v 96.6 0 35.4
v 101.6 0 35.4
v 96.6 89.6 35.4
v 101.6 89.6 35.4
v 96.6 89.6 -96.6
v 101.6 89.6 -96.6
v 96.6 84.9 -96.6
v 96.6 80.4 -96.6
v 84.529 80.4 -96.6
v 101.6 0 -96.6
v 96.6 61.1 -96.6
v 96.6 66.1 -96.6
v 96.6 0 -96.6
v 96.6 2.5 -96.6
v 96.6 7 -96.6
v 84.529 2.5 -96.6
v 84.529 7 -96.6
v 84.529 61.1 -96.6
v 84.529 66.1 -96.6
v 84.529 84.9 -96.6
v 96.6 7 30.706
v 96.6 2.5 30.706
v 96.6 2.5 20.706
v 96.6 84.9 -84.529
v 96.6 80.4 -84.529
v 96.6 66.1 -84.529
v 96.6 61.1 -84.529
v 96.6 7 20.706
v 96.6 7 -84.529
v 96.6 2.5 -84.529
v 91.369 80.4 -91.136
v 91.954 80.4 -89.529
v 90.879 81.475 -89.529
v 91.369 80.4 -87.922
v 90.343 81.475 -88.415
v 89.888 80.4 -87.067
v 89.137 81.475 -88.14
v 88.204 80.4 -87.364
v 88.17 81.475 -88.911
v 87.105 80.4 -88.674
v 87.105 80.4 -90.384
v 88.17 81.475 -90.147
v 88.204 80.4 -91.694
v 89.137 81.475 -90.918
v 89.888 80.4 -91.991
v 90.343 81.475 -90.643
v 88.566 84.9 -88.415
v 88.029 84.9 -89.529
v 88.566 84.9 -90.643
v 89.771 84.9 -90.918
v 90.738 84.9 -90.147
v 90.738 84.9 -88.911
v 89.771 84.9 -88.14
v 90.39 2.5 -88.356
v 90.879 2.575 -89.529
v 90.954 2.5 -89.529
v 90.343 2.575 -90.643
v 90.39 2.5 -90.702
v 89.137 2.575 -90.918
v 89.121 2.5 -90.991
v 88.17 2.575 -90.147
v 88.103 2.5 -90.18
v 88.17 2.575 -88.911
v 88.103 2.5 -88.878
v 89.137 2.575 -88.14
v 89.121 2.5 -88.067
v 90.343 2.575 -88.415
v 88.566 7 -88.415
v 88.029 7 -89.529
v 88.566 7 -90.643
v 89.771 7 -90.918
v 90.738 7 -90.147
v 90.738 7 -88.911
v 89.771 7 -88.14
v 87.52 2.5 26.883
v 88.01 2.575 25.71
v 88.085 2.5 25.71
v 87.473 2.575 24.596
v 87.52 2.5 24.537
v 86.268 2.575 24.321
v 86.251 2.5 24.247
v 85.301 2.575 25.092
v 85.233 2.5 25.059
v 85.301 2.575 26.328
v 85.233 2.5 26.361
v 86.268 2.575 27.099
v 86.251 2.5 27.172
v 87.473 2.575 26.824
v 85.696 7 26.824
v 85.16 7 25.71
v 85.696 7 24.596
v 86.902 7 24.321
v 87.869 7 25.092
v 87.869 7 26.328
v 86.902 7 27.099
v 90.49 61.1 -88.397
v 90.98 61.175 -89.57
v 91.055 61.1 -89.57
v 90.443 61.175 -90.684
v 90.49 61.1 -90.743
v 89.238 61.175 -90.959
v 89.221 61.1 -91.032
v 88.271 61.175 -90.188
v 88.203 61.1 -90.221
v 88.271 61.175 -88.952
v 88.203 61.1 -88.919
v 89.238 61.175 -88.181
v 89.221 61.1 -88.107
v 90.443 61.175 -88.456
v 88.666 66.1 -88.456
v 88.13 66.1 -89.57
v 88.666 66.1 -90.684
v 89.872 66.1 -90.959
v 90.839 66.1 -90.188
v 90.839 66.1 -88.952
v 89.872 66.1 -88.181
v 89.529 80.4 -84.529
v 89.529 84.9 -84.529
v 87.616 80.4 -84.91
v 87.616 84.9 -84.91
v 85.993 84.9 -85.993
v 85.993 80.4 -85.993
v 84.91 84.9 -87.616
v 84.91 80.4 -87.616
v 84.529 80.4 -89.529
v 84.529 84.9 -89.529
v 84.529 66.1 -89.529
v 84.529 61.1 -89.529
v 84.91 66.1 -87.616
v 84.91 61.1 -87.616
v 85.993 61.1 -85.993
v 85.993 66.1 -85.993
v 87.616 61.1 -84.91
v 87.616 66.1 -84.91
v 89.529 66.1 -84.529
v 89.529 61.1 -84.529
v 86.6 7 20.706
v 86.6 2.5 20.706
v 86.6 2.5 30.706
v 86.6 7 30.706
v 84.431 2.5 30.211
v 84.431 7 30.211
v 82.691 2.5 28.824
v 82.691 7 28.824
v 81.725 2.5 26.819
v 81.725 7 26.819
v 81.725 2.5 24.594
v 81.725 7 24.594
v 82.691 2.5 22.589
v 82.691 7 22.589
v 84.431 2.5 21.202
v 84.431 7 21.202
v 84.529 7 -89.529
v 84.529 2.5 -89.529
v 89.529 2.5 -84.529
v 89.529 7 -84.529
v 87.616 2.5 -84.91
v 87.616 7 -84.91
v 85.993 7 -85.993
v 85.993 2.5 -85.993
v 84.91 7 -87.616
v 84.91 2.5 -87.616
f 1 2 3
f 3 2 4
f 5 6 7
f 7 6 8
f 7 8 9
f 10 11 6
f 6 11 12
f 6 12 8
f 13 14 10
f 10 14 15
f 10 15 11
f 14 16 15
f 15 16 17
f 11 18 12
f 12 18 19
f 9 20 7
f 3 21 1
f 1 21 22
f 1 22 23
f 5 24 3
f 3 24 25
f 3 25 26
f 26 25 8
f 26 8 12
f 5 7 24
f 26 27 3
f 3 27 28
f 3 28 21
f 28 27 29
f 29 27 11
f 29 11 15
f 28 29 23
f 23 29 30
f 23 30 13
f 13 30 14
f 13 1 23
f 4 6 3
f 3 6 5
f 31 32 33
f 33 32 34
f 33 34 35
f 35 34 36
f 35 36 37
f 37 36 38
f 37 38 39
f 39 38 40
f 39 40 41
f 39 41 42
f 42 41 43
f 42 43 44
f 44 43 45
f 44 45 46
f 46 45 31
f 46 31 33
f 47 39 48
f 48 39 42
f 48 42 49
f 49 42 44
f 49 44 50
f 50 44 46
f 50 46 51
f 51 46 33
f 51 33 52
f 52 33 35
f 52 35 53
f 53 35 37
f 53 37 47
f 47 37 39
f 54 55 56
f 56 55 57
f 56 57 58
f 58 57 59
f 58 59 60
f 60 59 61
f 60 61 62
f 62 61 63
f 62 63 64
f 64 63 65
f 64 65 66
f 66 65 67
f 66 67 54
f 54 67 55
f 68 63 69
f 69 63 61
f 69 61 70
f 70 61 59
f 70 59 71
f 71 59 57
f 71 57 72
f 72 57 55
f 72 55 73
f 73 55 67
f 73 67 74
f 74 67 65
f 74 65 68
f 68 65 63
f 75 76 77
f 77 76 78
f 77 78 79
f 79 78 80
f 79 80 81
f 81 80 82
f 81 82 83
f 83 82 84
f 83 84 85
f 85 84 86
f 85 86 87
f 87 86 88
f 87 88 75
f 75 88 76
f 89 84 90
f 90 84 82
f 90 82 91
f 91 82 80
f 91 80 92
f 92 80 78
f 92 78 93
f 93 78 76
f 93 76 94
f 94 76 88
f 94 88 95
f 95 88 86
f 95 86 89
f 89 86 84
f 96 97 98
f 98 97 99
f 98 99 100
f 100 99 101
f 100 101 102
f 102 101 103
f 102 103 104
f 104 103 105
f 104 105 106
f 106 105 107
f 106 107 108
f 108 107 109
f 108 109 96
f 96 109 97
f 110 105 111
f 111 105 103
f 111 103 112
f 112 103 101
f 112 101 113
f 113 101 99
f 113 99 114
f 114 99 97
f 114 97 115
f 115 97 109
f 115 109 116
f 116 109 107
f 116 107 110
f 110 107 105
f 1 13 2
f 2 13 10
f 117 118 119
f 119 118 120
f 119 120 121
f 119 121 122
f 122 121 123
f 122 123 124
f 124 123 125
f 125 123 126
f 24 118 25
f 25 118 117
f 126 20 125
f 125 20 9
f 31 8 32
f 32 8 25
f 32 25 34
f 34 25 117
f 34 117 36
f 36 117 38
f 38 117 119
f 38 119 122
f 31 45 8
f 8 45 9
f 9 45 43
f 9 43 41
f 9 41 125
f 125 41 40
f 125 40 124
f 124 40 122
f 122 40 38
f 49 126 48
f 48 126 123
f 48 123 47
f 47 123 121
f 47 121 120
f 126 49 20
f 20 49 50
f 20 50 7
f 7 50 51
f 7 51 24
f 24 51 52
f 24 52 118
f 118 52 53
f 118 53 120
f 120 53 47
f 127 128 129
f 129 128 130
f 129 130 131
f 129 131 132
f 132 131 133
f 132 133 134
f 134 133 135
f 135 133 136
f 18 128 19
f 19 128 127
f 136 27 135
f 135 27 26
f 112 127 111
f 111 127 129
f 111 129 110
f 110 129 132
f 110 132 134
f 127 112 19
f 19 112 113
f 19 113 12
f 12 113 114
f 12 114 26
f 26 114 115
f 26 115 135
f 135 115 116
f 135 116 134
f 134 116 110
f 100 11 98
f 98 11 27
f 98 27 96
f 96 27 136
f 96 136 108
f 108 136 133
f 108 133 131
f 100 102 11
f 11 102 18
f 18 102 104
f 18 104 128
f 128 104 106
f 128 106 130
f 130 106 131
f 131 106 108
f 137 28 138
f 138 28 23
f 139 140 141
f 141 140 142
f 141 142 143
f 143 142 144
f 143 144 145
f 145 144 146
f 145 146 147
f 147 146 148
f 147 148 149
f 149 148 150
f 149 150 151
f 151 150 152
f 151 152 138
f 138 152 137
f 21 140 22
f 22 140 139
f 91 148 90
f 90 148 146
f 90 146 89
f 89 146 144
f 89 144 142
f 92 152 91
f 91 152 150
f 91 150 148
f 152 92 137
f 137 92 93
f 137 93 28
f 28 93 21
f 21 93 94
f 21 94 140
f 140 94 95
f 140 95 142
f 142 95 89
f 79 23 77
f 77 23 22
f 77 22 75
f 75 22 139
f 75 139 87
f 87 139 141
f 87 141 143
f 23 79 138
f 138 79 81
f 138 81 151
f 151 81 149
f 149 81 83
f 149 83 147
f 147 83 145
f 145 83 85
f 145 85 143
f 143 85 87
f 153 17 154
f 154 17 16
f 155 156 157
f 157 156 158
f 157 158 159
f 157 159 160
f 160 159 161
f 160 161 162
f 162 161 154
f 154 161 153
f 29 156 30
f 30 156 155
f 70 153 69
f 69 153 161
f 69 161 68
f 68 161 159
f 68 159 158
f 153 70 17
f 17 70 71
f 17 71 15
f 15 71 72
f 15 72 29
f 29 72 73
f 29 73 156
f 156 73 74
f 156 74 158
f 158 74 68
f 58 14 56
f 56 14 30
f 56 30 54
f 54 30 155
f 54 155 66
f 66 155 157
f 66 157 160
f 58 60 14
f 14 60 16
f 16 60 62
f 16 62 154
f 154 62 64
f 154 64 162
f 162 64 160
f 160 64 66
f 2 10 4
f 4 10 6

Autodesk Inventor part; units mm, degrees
ref_plane "YZ Plane" through (0, 0, 0) normal (1, 0, 0) x (0, 1, 0)
sketch "Sketch1" plane through (0, 0, 0) normal (0, 1, 0) x (-1, 0, 0)
  line L0 (101.6, -101.6) -> (-101.6, -101.6)
  line L1 (-101.6, -101.6) -> (-101.6, 101.6)
  line L2 (-101.6, 101.6) -> (101.6, 101.6)
  line L3 (101.6, 101.6) -> (101.6, -101.6)
  line L4 (96.6, -96.6) -> (-96.6, -96.6)
  line L5 (-96.6, -96.6) -> (-96.6, 96.6)
  line L6 (-96.6, 96.6) -> (96.6, 96.6)
  line L7 (96.6, 96.6) -> (96.6, -96.6)
  line L8 (101.6, 101.6) -> (-40.4, 101.6)
  circle A0 centre (0, 0) radius 88.9
  circle A1 centre (0, 0) radius 109.3376
  line L9 (-40.4, 101.6) -> (-101.6, 40.4)
  line L10 (-45.4, 101.6) -> (-101.6, 45.4)
  line L11 (96.6, 96.6) -> (96.6, 101.6)
  line L12 (-45.4, 101.6) -> (-35.4, 101.6)
  line L13 (-35.4, 101.6) -> (-35.4, 96.6)
  line L14 (-35.4, 96.6) -> (-45.4, 96.6)
  line L15 (-45.4, 96.6) -> (-45.4, 101.6)
  point P0 (96.6, 51.2168)
  point P1 (101.6, 40.4)
  point P2 (101.6, -40.4)
  point P3 (96.6, -51.2168)
  point P4 (-96.6, 45.4)
  point P5 (-45.4, 96.6)
  dimension "d0" = 203.2
  dimension "d1" = 203.2
  dimension "d2" = 101.6
  dimension "d3" = 101.6
  dimension "d4" = 5
  dimension "d5" = 5
  dimension "d6" = 5
  dimension "d7" = 5
  dimension "d10" = 142
  dimension "d12" = 61.2
  dimension "d14" = 177.8
  dimension "d15" = 5
  dimension "d16" = 5
  dimension "d17" = 10
extrude "Extrusion1" add sketch "Sketch1" along normal blind 89.6 contours L0 A1 L4 L7 L3 | L0 A1 L4 | A1 L7 L3 | L0 L1 A1 L5 L4 | A1 L7 L11 L2 L3 | L1 L9 L5 A1 | L1 L10 A1 | A1 L10 L5 L9 | L5 L10 L6 L9 | L6 L9 L2 L13 | L15 A1 L9 | L6 L10 A1 L15 | A1 L15 L2 | A1 L10 L15
sketch "Sketch2" plane through (101.6, 0, 45.4) normal (0.7071068, 0, 0.7071068) x (0.7071068, 0, -0.7071068)
  line L0 (-179.888, 0) -> (-39.7394, 0) projected
  line L1 (-74.4788, 0) -> (-5, 0)
  line L2 (-5, 0) -> (-5, 38.1)
  line L3 (-5, 38.1) -> (-74.4788, 38.1)
  line L4 (-74.4788, 38.1) -> (-74.4788, 0)
  line L5 (0, 0) -> (0, 89.6) projected
  line L6 (-79.4788, 0) -> (-79.4788, 89.6) projected
  arc A0 (-5, 38.1) -> (-74.4788, 38.1) centre (-39.7394, 10.3696) ccw
  point P0 (-39.7394, 0)
  dimension "d20" = 5
  dimension "d21" = 5
  dimension "d22" = 38.1
  dimension "d33" = 44.45
extrude "Extrusion2" cut sketch "Sketch2" along normal mid plane 98.6
fillet "Fillet1" radius 3.175 2 edges at (101.6, 44.8, 45.4) (45.4, 44.8, 101.6)
sketch "Sketch4" plane through (101.6, 0, -101.6) normal (1, 0, 0) x (0, 0, -1)
  line L0 (-145.6849, 0) -> (-145.6849, 89.6) projected
  line L1 (-203.2, 0) -> (-203.2, 89.6) projected
  line L2 (-145.6849, 0) -> (-203.2, 0)
  line L3 (-203.2, 0) -> (-203.2, 2)
  line L4 (-203.2, 2) -> (-145.6849, 2)
  line L5 (-145.6849, 2) -> (-145.6849, 0)
  point P0 (-101.6, 0)
  point P1 (-203.2, 0)
  dimension "d28" = 2
extrude "Extrusion3" cut sketch "Sketch4" against normal blind 57.658
fillet "Fillet3" radius 3.175 1 edges at (73.5, 54.8196, 73.5)
fillet "Fillet4" radius 3.175 2 edges at (48.9355, 20.05, 98.0645) (98.0645, 20.05, 48.9355)
sketch "Sketch5" plane through (-96.6, 0, -96.6) normal (0, 0, 1) x (1, 0, 0)
  line L0 (0, 0) -> (0, 89.6) projected
  line L1 (0, 0) -> (12.7, 0)
  line L2 (12.7, 0) -> (12.7, 19.7)
  line L3 (12.7, 19.7) -> (0, 19.7)
  line L4 (0, 19.7) -> (0, 0)
  line L5 (12.7, 0) -> (0, 0)
  line L6 (0, 0) -> (0, 7)
  line L7 (0, 7) -> (12.7, 7)
  line L8 (12.7, 7) -> (12.7, 0)
  point P0 (96.6, 0)
  point P1 (0, 7)
  point P2 (12.7, 7)
  point P3 (0, 19.7)
  dimension "d34" = 12.7
  dimension "d35" = 7
  dimension "d36" = 12.7
extrude "Extrusion4" cut sketch "Sketch5" against normal blind 25.4 contours L0 L3 L2 L7
ref_plane "Work Plane3" through (-96.6, 7, -99.1) normal (0, 1, 0) x (1, 0, 0)
sketch "Sketch11" plane through (-96.6, 7, -99.1) normal (0, 1, 0) x (1, 0, 0)
  line L0 (0, -2.5) -> (0, -196.0064)
  line L1 (193.2, -2.5) -> (0, -2.5)
  line L2 (0, -2.5) -> (193.2, -2.5)
  line L3 (193.2, -144.8203) -> (141.8746, -196.0064)
  line L4 (193.2, -2.5) -> (193.2, -144.8203)
  line L5 (193.2, -144.8203) -> (141.8746, -196.0064)
  line L6 (141.8746, -196.0064) -> (0, -196.0064)
  line L7 (0, -196.0064) -> (0, -2.5)
  line L8 (0, -2.5) -> (7.0711, -9.5711)
  circle A0 centre (7.0711, -9.5711) radius 5.3203
  circle A1 centre (7.0711, -9.5711) radius 1
  line L9 (7.0711, -14.8914) -> (0, -14.8914)
  line L10 (7.0711, -9.5711) -> (7.0711, -14.8914)
  line L11 (7.0711, -9.5711) -> (12.3914, -9.5711)
  line L12 (12.3914, -2.5) -> (12.3914, -9.5711)
  line L13 (0, -196.0064) -> (7.0711, -188.9353)
  line L14 (0, -196.0064) -> (10, -196.0064) construction
  circle A2 centre (7.0711, -188.9353) radius 5
  circle A3 centre (7.0711, -188.9353) radius 1
  line L15 (7.0711, -188.9353) -> (12.0711, -188.9353)
  line L16 (12.0711, -196.0064) -> (12.0711, -188.9353)
  line L17 (7.0711, -188.9353) -> (7.0711, -183.9353)
  line L18 (0, -183.9353) -> (7.0711, -183.9353)
  line L19 (193.2, -2.5) -> (186.1289, -9.5711)
  circle A4 centre (186.1289, -9.5711) radius 5
  circle A5 centre (186.1289, -9.5711) radius 1
  line L20 (186.1289, -9.5711) -> (181.1289, -9.5711)
  line L21 (181.1289, -2.5) -> (181.1289, -9.5711)
  line L22 (186.1289, -9.5711) -> (186.1289, -14.5711)
  line L23 (193.2, -14.5711) -> (186.1289, -14.5711)
  line L24 (193.2, -142.5343) -> (193.2, -2.5)
  line L25 (0, -196.0064) -> (139.7178, -196.0064)
  line L26 (122, -124.8064) -> (198.2, -124.8064)
  line L27 (198.2, -188.3064) -> (198.2, 2.1936)
  line L28 (122, -124.8064) -> (122, -201.0064)
  line L29 (139.7178, -201.0064) -> (-5, -201.0064)
  line L30 (193.2, -124.8064) -> (183.2, -124.8064)
  circle A6 centre (183.2, -124.8064) radius 5
  circle A7 centre (183.2, -124.8064) radius 1
  line L31 (122, -196.0064) -> (122, -186.0064)
  line L32 (193.2, -2.5) -> (193.2, -144.5) projected
  line L33 (0, -2.5) -> (193.2, -2.5) projected
  line L34 (0, -200.7) -> (0, -2.5) projected
  line L35 (183.2, -119.8064) -> (193.2, -119.8064)
  line L36 (183.2, -124.8064) -> (183.2, -129.8064)
  line L37 (183.2, -129.8064) -> (193.2, -129.8064)
  point P0 (96.6, -99.1)
  point P1 (96.4746, -327.7)
  point P2 (-5, -201.0064)
  point P3 (0, -183.9353)
  point P4 (0, -196.0064)
  point P5 (12.3914, -2.5)
  point P6 (0, -14.8914)
  dimension "d96" = 10
  dimension "d97" = 2
  dimension "d98" = 10
  dimension "d99" = 45
  dimension "d100" = 10
  dimension "d101" = 2
  dimension "d102" = 10
  dimension "d103" = 10
  dimension "d104" = 2
  dimension "d105" = 76.2
  dimension "d106" = 76.2
  dimension "d109" = 2
  dimension "d113" = 228.6
  dimension "d114" = 0
  dimension "d115" = 0
  dimension "d116" = 0
  dimension "d117" = 0
extrude "Extrusion8" add sketch "Sketch11" against normal blind 4.5 contours L8 A0 L9 L0 | L1 L12 A0 L8 | A0 L11 A1 L8 | L8 A1 L10 A0 | L18 A2 L13 L0 | L10 A1 L11 A0 | L1 L19 A4 L21 | L13 A2 L16 L6 | L17 A3 L13 A2 | A2 L15 A3 L17 | L4 L23 A4 L19 | L20 A5 L22 A4 | A4 L19 A5 L20 | L13 A3 L15 A2 | A4 L22 A5 L19 | L4 L26 A6 L35 | L4 L37 A6 L26 | A6 L26 A7 | A6 L36 A7 L26 | L26 A7 L36 A6
sketch "Sketch12" plane through (-101.6, 0, 101.6) normal (0, 0, 1) x (1, 0, 0)
  line L0 (0, 0) -> (5, 0) projected
  line L1 (5, 19.7) -> (5, 89.6) projected
  line L2 (0, 0) -> (5, 0)
  line L3 (5, 0) -> (5, 61.1)
  line L4 (5, 61.1) -> (0, 61.1)
  line L5 (0, 61.1) -> (0, 0)
  point P0 (101.6, 0)
  dimension "d120" = 61.1
ref_plane "Work Plane4" through (-96.6, 61.1, 101.6) normal (0, 1, 0) x (-1, 0, 0)
sketch "Sketch13" plane through (-96.6, 61.1, 101.6) normal (0, 1, 0) x (-1, 0, 0)
  line L0 (0, -198.2) -> (0, -5)
  line L1 (-193.2, -198.2) -> (0, -198.2)
  line L2 (0, -198.2) -> (-193.2, -198.2)
  line L3 (-193.2, -56.1861) -> (-141.8746, -5)
  line L4 (-193.2, -198.2) -> (-193.2, -56.1861)
  line L5 (-193.2, -56.1861) -> (-141.8746, -5)
  line L6 (-141.8746, -5) -> (0, -5)
  line L7 (0, -5) -> (0, -198.2)
  line L8 (0, -198.2) -> (-7.0711, -191.1289)
  circle A0 centre (-7.0711, -191.1289) radius 5.3203
  circle A1 centre (-7.0711, -191.1289) radius 1
  line L9 (-7.0711, -185.8086) -> (0, -185.8086)
  line L10 (-7.0711, -191.1289) -> (-7.0711, -185.8086)
  line L11 (-7.0711, -191.1289) -> (-12.3914, -191.1289)
  line L12 (-12.3914, -198.2) -> (-12.3914, -191.1289)
  line L13 (0, -5) -> (-7.2124, -11.9268)
  line L14 (0, -5) -> (-9.998, -4.7981) construction
  circle A2 centre (-7.2124, -11.9268) radius 5
  circle A3 centre (-7.2124, -11.9268) radius 1
  line L15 (-7.2124, -11.9268) -> (-12.2124, -11.9073)
  line L16 (-12.1854, -5) -> (-12.2124, -11.9073)
  line L17 (-7.2124, -11.9268) -> (-7.2319, -16.9268)
  line L18 (0, -16.955) -> (-7.2319, -16.9268)
  line L19 (-193.2, -198.2) -> (-186.1289, -191.1289)
  circle A4 centre (-186.1289, -191.1289) radius 5
  circle A5 centre (-186.1289, -191.1289) radius 1
  line L20 (-186.1289, -191.1289) -> (-181.1289, -191.1289)
  line L21 (-181.1289, -198.2) -> (-181.1289, -191.1289)
  line L22 (-186.1289, -191.1289) -> (-186.1289, -186.1289)
  line L23 (-193.2, -186.1289) -> (-186.1289, -186.1289)
  line L24 (-193.2, -58.1657) -> (-193.2, -198.2)
  line L25 (0, -5) -> (-139.7178, -5)
  line L26 (-122, -76.2) -> (-198.2, -76.2)
  line L27 (-198.2, -12.5257) -> (-198.2, -203.0257)
  line L28 (-122, -76.2) -> (-122, 0)
  line L29 (-139.8151, 0) -> (4.9027, 0)
  line L30 (-193.2, -76.2) -> (-183.2973, -76.2)
  circle A6 centre (-183.2973, -76.2) radius 5
  circle A7 centre (-183.2973, -76.2) radius 1
  line L31 (-122, -5) -> (-122, -15)
  circle A8 centre (-122, -15) radius 5
  circle A9 centre (-122, -15) radius 1.75
  line L32 (-193.2, -198.2) -> (-193.2, -56.2)
  line L33 (0, -198.2) -> (-193.2, -198.2)
  line L34 (0, -0.1321) -> (0, -198.2)
  line L35 (-183.2973, -81.2) -> (-193.2, -81.2)
  line L36 (-183.2973, -76.2) -> (-183.2973, -71.2)
  line L37 (-183.2973, -71.2) -> (-193.2, -71.2)
  line L38 (-122, -15) -> (-127, -15)
  line L39 (-127, -15) -> (-127, -5)
  line L40 (-117, -15) -> (-117, -5)
  line L41 (0, 0) -> (0, -198.2) projected
  line L42 (0, -198.2) -> (-193.2, -198.2) projected
  line L43 (-198.2, -57.5151) -> (-198.2, -203.2) projected
  line L44 (0, -4.6936) -> (-12.0711, -4.6936) projected
  line L45 (5, 0) -> (0, 0) projected
  line L46 (-142, -5) -> (-132, -5) projected
  point P0 (-96.6, -101.6)
  point P1 (-96.6973, -101.7321)
  point P2 (-139.7178, -5)
  point P3 (-139.8151, 0)
  point P4 (4.9027, 0)
  point P5 (181.1289, -2.5)
  point P6 (193.2, -129.8064)
  point P7 (193.2, -119.8064)
  point P8 (117, -196.0064)
  point P9 (127, -196.0064)
  point P10 (0, -183.9353)
  point P11 (0, -196.0064)
  point P12 (12.3914, -2.5)
  point P13 (0, -14.8914)
  point P14 (-193.2, -71.2)
  point P15 (-193.2, -81.2)
  point P16 (0, -16.955)
  point P17 (0, -5)
  point P18 (-12.3914, -198.2)
  point P19 (0, -185.8086)
  dimension "d122" = 10
  dimension "d123" = 2
  dimension "d124" = 10
  dimension "d125" = 45
  dimension "d126" = 10
  dimension "d127" = 2
  dimension "d128" = 10
  dimension "d129" = 10
  dimension "d130" = 2
  dimension "d131" = 76.2
  dimension "d132" = 76.2
  dimension "d133" = 2
  dimension "d134" = 10
  dimension "d135" = 10
  dimension "d136" = 3.5
  dimension "d138" = 0
  dimension "d139" = 0
  dimension "d140" = 0
  dimension "d141" = 0
  dimension "d142" = 0
  dimension "d143" = 0
  dimension "d144" = 0
  dimension "d146" = 0
  dimension "d148" = 0
extrude "Extrusion9" add sketch "Sketch13" along normal blind 5 contours L8 A0 L9 L0 | L1 L12 A0 L8 | A0 L11 A1 L8 | L8 A1 L10 A0 | L18 A2 L13 L0 | L10 A1 L11 A0 | L1 L19 A4 L21 | L13 A2 L16 L6 | L17 A3 L13 A2 | A2 L15 A3 L17 | L4 L23 A4 L19 | L20 A5 L22 A4 | A4 L19 A5 L20 | L13 A3 L15 A2 | A4 L22 A5 L19
sketch "Sketch14" plane through (-101.6, 0, 101.6) normal (0, 0, 1) x (1, 0, 0)
  line L0 (12.2319, 61.1) -> (5, 61.1) projected
  line L1 (5, 62) -> (5, 84.9)
  line L2 (5, 0) -> (5, 89.6) projected
  line L3 (5, 84.9) -> (137, 84.9)
  line L4 (137, 0) -> (137, 89.6) projected
  point P0 (101.6, 0)
  point P1 (5, 61.1)
  dimension "d151" = 22.9
ref_plane "Work Plane5" through (-96.6, 84.9, 101.6) normal (0, -1, 0) x (1, 0, 0)
sketch "Sketch15" plane through (-96.6, 84.9, 101.6) normal (0, -1, 0) x (1, 0, 0)
  line L0 (0, -198.2) -> (0, -5)
  line L1 (-193.2, -198.2) -> (0, -198.2)
  line L2 (0, -198.2) -> (-193.2, -198.2)
  line L3 (-193.2, -56.1861) -> (-141.8746, -5)
  line L4 (-193.2, -198.2) -> (-193.2, -56.1861)
  line L5 (-193.2, -56.1861) -> (-141.8746, -5)
  line L6 (-141.8746, -5) -> (0, -5)
  line L7 (0, -5) -> (0, -198.2)
  line L8 (0, -198.2) -> (-7.0711, -191.1289)
  circle A0 centre (-7.0711, -191.1289) radius 5.3203
  circle A1 centre (-7.0711, -191.1289) radius 1
  line L9 (-7.0711, -185.8086) -> (0, -185.8086)
  line L10 (-7.0711, -191.1289) -> (-7.0711, -185.8086)
  line L11 (-7.0711, -191.1289) -> (-12.3914, -191.1289)
  line L12 (-12.3914, -198.2) -> (-12.3914, -191.1289)
  line L13 (0, -5) -> (-7.2124, -11.9268)
  line L14 (0, -5) -> (-9.998, -4.7981) construction
  circle A2 centre (-7.2124, -11.9268) radius 5
  circle A3 centre (-7.2124, -11.9268) radius 1
  line L15 (-7.2124, -11.9268) -> (-12.2124, -11.9073)
  line L16 (-12.1854, -5) -> (-12.2124, -11.9073)
  line L17 (-7.2124, -11.9268) -> (-7.2319, -16.9268)
  line L18 (0, -16.955) -> (-7.2319, -16.9268)
  line L19 (-193.2, -198.2) -> (-186.1289, -191.1289)
  circle A4 centre (-186.1289, -191.1289) radius 5
  circle A5 centre (-186.1289, -191.1289) radius 1
  line L20 (-186.1289, -191.1289) -> (-181.1289, -191.1289)
  line L21 (-181.1289, -198.2) -> (-181.1289, -191.1289)
  line L22 (-186.1289, -191.1289) -> (-186.1289, -186.1289)
  line L23 (-193.2, -186.1289) -> (-186.1289, -186.1289)
  line L24 (-193.2, -58.1657) -> (-193.2, -198.2)
  line L25 (0, -5) -> (-139.7178, -5)
  line L26 (-122, -76.2) -> (-198.2, -76.2)
  line L27 (-198.2, -12.5257) -> (-198.2, -203.0257)
  line L28 (-122, -76.2) -> (-122, 0)
  line L29 (-139.8151, 0) -> (4.9027, 0)
  line L30 (-193.2, -76.2) -> (-183.2973, -76.2)
  circle A6 centre (-183.2973, -76.2) radius 5
  circle A7 centre (-183.2973, -76.2) radius 1
  line L31 (-122, -5) -> (-122, -15)
  circle A8 centre (-122, -15) radius 5
  circle A9 centre (-122, -15) radius 1.75
  line L32 (-193.2, -198.2) -> (-193.2, -56.2)
  line L33 (0, -198.2) -> (-193.2, -198.2)
  line L34 (0, -0.1321) -> (0, -198.2)
  line L35 (-183.2973, -81.2) -> (-193.2, -81.2)
  line L36 (-183.2973, -76.2) -> (-183.2973, -71.2)
  line L37 (-183.2973, -71.2) -> (-193.2, -71.2)
  line L38 (-122, -15) -> (-127, -15)
  line L39 (-127, -15) -> (-127, -5)
  line L40 (-117, -15) -> (-117, -5)
  line L41 (0, 0) -> (0, -198.2)
  line L42 (0, -198.2) -> (-193.2, -198.2)
  line L43 (-198.2, -57.5151) -> (-198.2, -203.2)
  line L44 (0, -4.6936) -> (-12.0711, -4.6936)
  line L45 (5, 0) -> (0, 0)
  line L46 (-142, -5) -> (-132, -5)
  line L47 (193.2, -198.2) -> (0, -198.2)
  line L48 (0, -198.2) -> (193.2, -198.2)
  line L49 (193.2, -56.1861) -> (141.8746, -5)
  line L50 (193.2, -198.2) -> (193.2, -56.1861)
  line L51 (193.2, -56.1861) -> (141.8746, -5)
  line L52 (141.8746, -5) -> (0, -5)
  line L53 (0, -198.2) -> (7.0711, -191.1289)
  circle A10 centre (7.0711, -191.1289) radius 5.3203
  circle A11 centre (7.0711, -191.1289) radius 1
  line L54 (7.0711, -185.8086) -> (0, -185.8086)
  line L55 (7.0711, -191.1289) -> (7.0711, -185.8086)
  line L56 (7.0711, -191.1289) -> (12.3914, -191.1289)
  line L57 (12.3914, -198.2) -> (12.3914, -191.1289)
  line L58 (0, -5) -> (7.2124, -11.9268)
  line L59 (0, -5) -> (9.998, -4.7981) construction
  circle A12 centre (7.2124, -11.9268) radius 5
  circle A13 centre (7.2124, -11.9268) radius 1
  line L60 (7.2124, -11.9268) -> (12.2124, -11.9073)
  line L61 (12.1854, -5) -> (12.2124, -11.9073)
  line L62 (7.2124, -11.9268) -> (7.2319, -16.9268)
  line L63 (0, -16.955) -> (7.2319, -16.9268)
  line L64 (193.2, -198.2) -> (186.1289, -191.1289)
  circle A14 centre (186.1289, -191.1289) radius 5
  circle A15 centre (186.1289, -191.1289) radius 1
  line L65 (186.1289, -191.1289) -> (181.1289, -191.1289)
  line L66 (181.1289, -198.2) -> (181.1289, -191.1289)
  line L67 (186.1289, -191.1289) -> (186.1289, -186.1289)
  line L68 (193.2, -186.1289) -> (186.1289, -186.1289)
  line L69 (193.2, -58.1657) -> (193.2, -198.2)
  line L70 (0, -5) -> (139.7178, -5)
  line L71 (122, -76.2) -> (198.2, -76.2)
  line L72 (198.2, -12.5257) -> (198.2, -203.0257)
  line L73 (122, -76.2) -> (122, 0)
  line L74 (139.8151, 0) -> (-4.9027, 0)
  line L75 (122, -5) -> (122, -15)
  circle A16 centre (122, -15) radius 5
  circle A17 centre (122, -15) radius 1.75
  line L76 (193.2, -198.2) -> (193.2, -56.2)
  line L77 (0, -198.2) -> (193.2, -198.2)
  line L78 (122, -15) -> (127, -15)
  line L79 (127, -15) -> (127, -5)
  line L80 (117, -15) -> (117, -5)
  line L81 (0, -198.2) -> (193.2, -198.2)
  line L82 (198.2, -57.5151) -> (198.2, -203.2)
  line L83 (0, -4.6936) -> (12.0711, -4.6936)
  line L84 (-5, 0) -> (0, 0)
  line L85 (142, -5) -> (132, -5)
  line L86 (193.2, -56.2) -> (142, -5) projected
  line L87 (142, -5) -> (193.2, -56.2)
  line L88 (142, -5) -> (142, -11.9268)
  line L89 (142, -11.9268) -> (186.2732, -56.2)
  line L90 (193.2, -57.5151) -> (193.2, -56.2) projected
  line L91 (186.2732, -56.2) -> (193.2, -56.2)
  circle A18 centre (165.7974, -32.3329) radius 1
  point P0 (96.6, -101.6)
  point P1 (-96.6, -101.6)
  point P2 (-96.6973, -101.7321)
  point P3 (-139.7178, -5)
  point P4 (-139.8151, 0)
  point P5 (4.9027, 0)
  point P6 (181.1289, -2.5)
  point P7 (193.2, -129.8064)
  point P8 (193.2, -119.8064)
  point P9 (117, -196.0064)
  point P10 (127, -196.0064)
  point P11 (0, -183.9353)
  point P12 (0, -196.0064)
  point P13 (12.3914, -2.5)
  point P14 (0, -14.8914)
  point P15 (-193.2, -71.2)
  point P16 (-193.2, -81.2)
  point P17 (0, -16.955)
  point P18 (0, -5)
  point P19 (-12.3914, -198.2)
  point P20 (0, -185.8086)
  point P21 (96.6, -101.6)
  point P22 (96.6973, -101.7321)
  point P23 (139.7178, -5)
  point P24 (139.8151, 0)
  point P25 (-4.9027, 0)
  point P26 (0, -16.955)
  point P27 (0, -185.8086)
  point P28 (12.3914, -198.2)
  point P29 (188.0675, -51.0675)
  point P30 (142, -5.1251)
  dimension "d153" = 10
  dimension "d154" = 2
  dimension "d155" = 10
  dimension "d156" = 45
  dimension "d157" = 10
  dimension "d158" = 2
  dimension "d159" = 10
  dimension "d160" = 10
  dimension "d161" = 2
  dimension "d162" = 76.2
  dimension "d163" = 76.2
  dimension "d164" = 2
  dimension "d165" = 10
  dimension "d166" = 10
  dimension "d167" = 3.5
  dimension "d168" = 0
  dimension "d169" = 0
  dimension "d170" = 0
  dimension "d171" = 0
  dimension "d172" = 0
  dimension "d173" = 0
  dimension "d174" = 0
  dimension "d175" = 0
  dimension "d176" = 0
  dimension "d179" = 0.3064
  dimension "d210" = 2
  dimension "d211" = 2.5
extrude "Extrusion10" add sketch "Sketch15" along normal blind 4.5 contours L53 A10 L57 L47 | L0 L54 A10 L53 | A10 L55 A11 L53 | L53 A11 L56 A10 | L0 L58 A12 L63 | A10 L56 A11 L55 | L66 A14 L64 L47 | L52 L61 A12 L58 | L62 A13 L60 A12 | A12 L58 A13 L62 | L64 A14 L68 L50 | L65 A15 L64 A14 | A14 L67 A15 L65 | A12 L60 A13 L58 | L64 A15 L67 A14 | L91 L89 L88 L49 L86 | L49 L88 L86
fillet "Fillet5" radius 3.175 2 edges at (101.6, 44.8, -101.6) (-101.6, 44.8, -101.6)
sketch "Sketch16" plane through (0, 89.6, 0) normal (0, 1, 0) x (1, 0, 0)
  line L0 (-96.6, -101.6) -> (-96.6, 96.6) projected
  line L1 (-96.6, -98.35) -> (-99.1, -98.35)
  line L2 (-99.1, -98.35) -> (-99.1, -100.1)
  line L3 (-99.1, -100.1) -> (-96.6, -100.1)
  line L4 (-96.6, -100.1) -> (-96.6, -98.35)
  line L5 (-101.6, -101.6) -> (-96.6, -101.6) projected
  line L6 (35.4, -96.6) -> (35.4, -101.6) projected
  line L7 (35.4, -100.1) -> (37.9, -100.1)
  line L8 (37.9, -100.1) -> (37.9, -98.35)
  line L9 (37.9, -98.35) -> (35.4, -98.35)
  line L10 (35.4, -98.35) -> (35.4, -100.1)
  line L11 (35.4, -101.6) -> (44.0849, -101.6) projected
  line L12 (45.4, -96.6) -> (35.4, -96.6) projected
  line L13 (-96.6, -100.1) -> (35.4, -100.1)
  line L14 (-101.6, 98.425) -> (-101.6, -101.6) projected
  point P0 (0, 0)
  dimension "d182" = 1.5
  dimension "d183" = 1.75
  dimension "d184" = 2.5
  dimension "d185" = 1.5
  dimension "d186" = 1.75
  dimension "d187" = 2.5
  dimension "d188" = 1.75
  dimension "d191" = 132
  dimension "d194" = 2.5
extrude "Extrusion11" cut sketch "Sketch16" against normal through all
sketch "Sketch17" plane through (0, 0, 0) normal (0, -1, 0) x (1, 0, 0)
  point P0 (0, 0)
sketch "Sketch18" plane through (0, 89.6, 0) normal (0, 1, 0) x (1, 0, 0)
  line L0 (45.4, -96.6) -> (35.4, -96.6) projected
  line L1 (35.4, -101.6) -> (44.0849, -101.6) projected
  line L2 (35.4, -96.6) -> (39.0179, -96.6)
  line L3 (39.0179, -96.6) -> (39.0179, -101.6)
  line L4 (39.0179, -101.6) -> (35.4, -101.6)
  line L5 (35.4, -101.6) -> (35.4, -96.6)
  line L6 (-101.6, 98.425) -> (-101.6, -101.6) projected
  line L7 (-96.6, -101.6) -> (-96.6, -100.1) projected
  line L8 (-101.6, -96.6) -> (-96.6, -96.6)
  line L9 (-96.6, -96.6) -> (-96.6, -101.6)
  line L10 (-96.6, -101.6) -> (-101.6, -101.6)
  line L11 (-101.6, -101.6) -> (-101.6, -96.6)
  point P0 (0, 0)
  point P1 (-101.6, -101.6)
extrude "Extrusion12" add sketch "Sketch18" against normal blind 5
sketch "Sketch22" plane through (-96.6, 61.1, 101.6) normal (0, -1, 0) x (1, 0, 0)
  circle A0 centre (7.1759, -11.8979) radius 1.0267
  circle A1 centre (7.0845, -191.0815) radius 1.099
  circle A2 centre (186.1548, -191.1698) radius 1.0412
  point P0 (96.6, -101.6)
hole "Hole1" at (-89.4241, 61.1, 89.7021) at (-89.5155, 61.1, -89.4815) at (89.5548, 61.1, -89.5698) direction (0, 1, 0) diameter 2.85 depth 12.7 tip angle 118 countersink diameter 3 countersink angle 90 thread size "M3.5x0.6" class "6H" standard "ANSI Metric M Profile"
sketch "Sketch23" plane through (-96.6, 2.5, -99.1) normal (0, -1, 0) x (1, 0, 0)
  point P0 (96.6, 99.1)
sketch "Sketch24" plane through (-96.6, 2.5, -99.1) normal (0, -1, 0) x (1, 0, 0)
  circle A0 centre (7.0728, 188.9158) radius 1.0195
  circle A1 centre (7.0711, 9.5711) radius 1 projected
  circle A2 centre (7.0711, 9.5711) radius 1
  circle A3 centre (186.0543, 9.5711) radius 1.0028
  circle A4 centre (183.1847, 124.8098) radius 1.0762
  point P0 (96.6, 99.1)
hole "Hole2" at (-89.5272, 2.5, 89.8158) at (-89.5289, 2.5, -89.5289) at (89.4543, 2.5, -89.5289) at (86.5847, 2.5, 25.7098) direction (0, 1, 0) diameter 2.85 depth 12.7 tip angle 118 countersink diameter 3 countersink angle 90 thread size "M3.5x0.6" class "6H" standard "ANSI Metric M Profile"
sketch "Sketch25" plane through (-96.6, 80.4, 101.6) normal (0, -1, 0) x (1, 0, 0)
  circle A0 centre (7.2045, -11.9025) radius 1.0659
  circle A1 centre (7.0584, -191.1632) radius 1.0343
  circle A2 centre (186.0543, -191.1289) radius 1.5 projected
  circle A3 centre (186.0543, -191.1289) radius 1.0077
  circle A4 centre (183.0986, -75.9599) radius 1.4972
  circle A5 centre (165.7974, -32.3329) radius 1 projected
  circle A6 centre (165.7974, -32.3329) radius 1
  point P0 (96.6, -101.6)
hole "Hole3" at (69.1974, 80.4, 69.2671) at (86.4986, 80.4, 25.6401) at (89.4543, 80.4, -89.5289) at (-89.5416, 80.4, -89.5632) at (-89.3955, 80.4, 89.6975) direction (0, 1, 0) diameter 2.85 depth 12.7 tip angle 118 countersink diameter 5 countersink angle 90 thread size "M3.5x0.6" class "6H" standard "ANSI Metric M Profile"
sketch "Sketch26" plane through (0, 89.6, 0) normal (0, 1, 0) x (1, 0, 0)
  line L0 (92.64, -35.4) -> (108.276, -35.4)
  line L1 (89.6732, -45.4) -> (96.6, -45.4) projected
  line L2 (35.4, -96.6) -> (35.4, -101.6) projected
  line L3 (45.4, -96.6) -> (45.4, -89.6732) projected
  line L4 (92.64, -35.4) -> (0, -35.4)
  line L5 (0, -126.5642) -> (108.276, -126.5642)
  line L6 (108.276, -126.5642) -> (108.276, -35.4)
  line L7 (0, -126.5642) -> (-133.2655, -126.5642)
  line L8 (-133.2655, -126.5642) -> (-133.2655, 117.3259)
  line L9 (-133.2655, 117.3259) -> (96.6, 117.3259)
  line L10 (96.6, 117.3259) -> (101.6, 117.3259)
  line L11 (-96.6, 96.6) -> (96.6, 96.6) projected
  line L12 (96.6, 96.6) -> (101.6, 96.6)
  line L13 (101.6, 96.6) -> (101.6, 117.3259)
  line L14 (96.6, 96.6) -> (96.6, 84.5289) projected
  line L15 (96.6, 96.6) -> (0, 96.6)
  line L16 (0, 96.6) -> (0, -35.4)
  point P0 (0, 0)
  dimension "d219" = 10
  dimension "d220" = 10
extrude "Extrusion13" cut sketch "Sketch26" against normal up to surface (89.6 mm away)
equation "\"d1\" = d0"
equation "\"d2\" = 0.5 * d0"
equation "\"d3\" = 0.5 * d0"
properties part number "Box_Walls_2"
